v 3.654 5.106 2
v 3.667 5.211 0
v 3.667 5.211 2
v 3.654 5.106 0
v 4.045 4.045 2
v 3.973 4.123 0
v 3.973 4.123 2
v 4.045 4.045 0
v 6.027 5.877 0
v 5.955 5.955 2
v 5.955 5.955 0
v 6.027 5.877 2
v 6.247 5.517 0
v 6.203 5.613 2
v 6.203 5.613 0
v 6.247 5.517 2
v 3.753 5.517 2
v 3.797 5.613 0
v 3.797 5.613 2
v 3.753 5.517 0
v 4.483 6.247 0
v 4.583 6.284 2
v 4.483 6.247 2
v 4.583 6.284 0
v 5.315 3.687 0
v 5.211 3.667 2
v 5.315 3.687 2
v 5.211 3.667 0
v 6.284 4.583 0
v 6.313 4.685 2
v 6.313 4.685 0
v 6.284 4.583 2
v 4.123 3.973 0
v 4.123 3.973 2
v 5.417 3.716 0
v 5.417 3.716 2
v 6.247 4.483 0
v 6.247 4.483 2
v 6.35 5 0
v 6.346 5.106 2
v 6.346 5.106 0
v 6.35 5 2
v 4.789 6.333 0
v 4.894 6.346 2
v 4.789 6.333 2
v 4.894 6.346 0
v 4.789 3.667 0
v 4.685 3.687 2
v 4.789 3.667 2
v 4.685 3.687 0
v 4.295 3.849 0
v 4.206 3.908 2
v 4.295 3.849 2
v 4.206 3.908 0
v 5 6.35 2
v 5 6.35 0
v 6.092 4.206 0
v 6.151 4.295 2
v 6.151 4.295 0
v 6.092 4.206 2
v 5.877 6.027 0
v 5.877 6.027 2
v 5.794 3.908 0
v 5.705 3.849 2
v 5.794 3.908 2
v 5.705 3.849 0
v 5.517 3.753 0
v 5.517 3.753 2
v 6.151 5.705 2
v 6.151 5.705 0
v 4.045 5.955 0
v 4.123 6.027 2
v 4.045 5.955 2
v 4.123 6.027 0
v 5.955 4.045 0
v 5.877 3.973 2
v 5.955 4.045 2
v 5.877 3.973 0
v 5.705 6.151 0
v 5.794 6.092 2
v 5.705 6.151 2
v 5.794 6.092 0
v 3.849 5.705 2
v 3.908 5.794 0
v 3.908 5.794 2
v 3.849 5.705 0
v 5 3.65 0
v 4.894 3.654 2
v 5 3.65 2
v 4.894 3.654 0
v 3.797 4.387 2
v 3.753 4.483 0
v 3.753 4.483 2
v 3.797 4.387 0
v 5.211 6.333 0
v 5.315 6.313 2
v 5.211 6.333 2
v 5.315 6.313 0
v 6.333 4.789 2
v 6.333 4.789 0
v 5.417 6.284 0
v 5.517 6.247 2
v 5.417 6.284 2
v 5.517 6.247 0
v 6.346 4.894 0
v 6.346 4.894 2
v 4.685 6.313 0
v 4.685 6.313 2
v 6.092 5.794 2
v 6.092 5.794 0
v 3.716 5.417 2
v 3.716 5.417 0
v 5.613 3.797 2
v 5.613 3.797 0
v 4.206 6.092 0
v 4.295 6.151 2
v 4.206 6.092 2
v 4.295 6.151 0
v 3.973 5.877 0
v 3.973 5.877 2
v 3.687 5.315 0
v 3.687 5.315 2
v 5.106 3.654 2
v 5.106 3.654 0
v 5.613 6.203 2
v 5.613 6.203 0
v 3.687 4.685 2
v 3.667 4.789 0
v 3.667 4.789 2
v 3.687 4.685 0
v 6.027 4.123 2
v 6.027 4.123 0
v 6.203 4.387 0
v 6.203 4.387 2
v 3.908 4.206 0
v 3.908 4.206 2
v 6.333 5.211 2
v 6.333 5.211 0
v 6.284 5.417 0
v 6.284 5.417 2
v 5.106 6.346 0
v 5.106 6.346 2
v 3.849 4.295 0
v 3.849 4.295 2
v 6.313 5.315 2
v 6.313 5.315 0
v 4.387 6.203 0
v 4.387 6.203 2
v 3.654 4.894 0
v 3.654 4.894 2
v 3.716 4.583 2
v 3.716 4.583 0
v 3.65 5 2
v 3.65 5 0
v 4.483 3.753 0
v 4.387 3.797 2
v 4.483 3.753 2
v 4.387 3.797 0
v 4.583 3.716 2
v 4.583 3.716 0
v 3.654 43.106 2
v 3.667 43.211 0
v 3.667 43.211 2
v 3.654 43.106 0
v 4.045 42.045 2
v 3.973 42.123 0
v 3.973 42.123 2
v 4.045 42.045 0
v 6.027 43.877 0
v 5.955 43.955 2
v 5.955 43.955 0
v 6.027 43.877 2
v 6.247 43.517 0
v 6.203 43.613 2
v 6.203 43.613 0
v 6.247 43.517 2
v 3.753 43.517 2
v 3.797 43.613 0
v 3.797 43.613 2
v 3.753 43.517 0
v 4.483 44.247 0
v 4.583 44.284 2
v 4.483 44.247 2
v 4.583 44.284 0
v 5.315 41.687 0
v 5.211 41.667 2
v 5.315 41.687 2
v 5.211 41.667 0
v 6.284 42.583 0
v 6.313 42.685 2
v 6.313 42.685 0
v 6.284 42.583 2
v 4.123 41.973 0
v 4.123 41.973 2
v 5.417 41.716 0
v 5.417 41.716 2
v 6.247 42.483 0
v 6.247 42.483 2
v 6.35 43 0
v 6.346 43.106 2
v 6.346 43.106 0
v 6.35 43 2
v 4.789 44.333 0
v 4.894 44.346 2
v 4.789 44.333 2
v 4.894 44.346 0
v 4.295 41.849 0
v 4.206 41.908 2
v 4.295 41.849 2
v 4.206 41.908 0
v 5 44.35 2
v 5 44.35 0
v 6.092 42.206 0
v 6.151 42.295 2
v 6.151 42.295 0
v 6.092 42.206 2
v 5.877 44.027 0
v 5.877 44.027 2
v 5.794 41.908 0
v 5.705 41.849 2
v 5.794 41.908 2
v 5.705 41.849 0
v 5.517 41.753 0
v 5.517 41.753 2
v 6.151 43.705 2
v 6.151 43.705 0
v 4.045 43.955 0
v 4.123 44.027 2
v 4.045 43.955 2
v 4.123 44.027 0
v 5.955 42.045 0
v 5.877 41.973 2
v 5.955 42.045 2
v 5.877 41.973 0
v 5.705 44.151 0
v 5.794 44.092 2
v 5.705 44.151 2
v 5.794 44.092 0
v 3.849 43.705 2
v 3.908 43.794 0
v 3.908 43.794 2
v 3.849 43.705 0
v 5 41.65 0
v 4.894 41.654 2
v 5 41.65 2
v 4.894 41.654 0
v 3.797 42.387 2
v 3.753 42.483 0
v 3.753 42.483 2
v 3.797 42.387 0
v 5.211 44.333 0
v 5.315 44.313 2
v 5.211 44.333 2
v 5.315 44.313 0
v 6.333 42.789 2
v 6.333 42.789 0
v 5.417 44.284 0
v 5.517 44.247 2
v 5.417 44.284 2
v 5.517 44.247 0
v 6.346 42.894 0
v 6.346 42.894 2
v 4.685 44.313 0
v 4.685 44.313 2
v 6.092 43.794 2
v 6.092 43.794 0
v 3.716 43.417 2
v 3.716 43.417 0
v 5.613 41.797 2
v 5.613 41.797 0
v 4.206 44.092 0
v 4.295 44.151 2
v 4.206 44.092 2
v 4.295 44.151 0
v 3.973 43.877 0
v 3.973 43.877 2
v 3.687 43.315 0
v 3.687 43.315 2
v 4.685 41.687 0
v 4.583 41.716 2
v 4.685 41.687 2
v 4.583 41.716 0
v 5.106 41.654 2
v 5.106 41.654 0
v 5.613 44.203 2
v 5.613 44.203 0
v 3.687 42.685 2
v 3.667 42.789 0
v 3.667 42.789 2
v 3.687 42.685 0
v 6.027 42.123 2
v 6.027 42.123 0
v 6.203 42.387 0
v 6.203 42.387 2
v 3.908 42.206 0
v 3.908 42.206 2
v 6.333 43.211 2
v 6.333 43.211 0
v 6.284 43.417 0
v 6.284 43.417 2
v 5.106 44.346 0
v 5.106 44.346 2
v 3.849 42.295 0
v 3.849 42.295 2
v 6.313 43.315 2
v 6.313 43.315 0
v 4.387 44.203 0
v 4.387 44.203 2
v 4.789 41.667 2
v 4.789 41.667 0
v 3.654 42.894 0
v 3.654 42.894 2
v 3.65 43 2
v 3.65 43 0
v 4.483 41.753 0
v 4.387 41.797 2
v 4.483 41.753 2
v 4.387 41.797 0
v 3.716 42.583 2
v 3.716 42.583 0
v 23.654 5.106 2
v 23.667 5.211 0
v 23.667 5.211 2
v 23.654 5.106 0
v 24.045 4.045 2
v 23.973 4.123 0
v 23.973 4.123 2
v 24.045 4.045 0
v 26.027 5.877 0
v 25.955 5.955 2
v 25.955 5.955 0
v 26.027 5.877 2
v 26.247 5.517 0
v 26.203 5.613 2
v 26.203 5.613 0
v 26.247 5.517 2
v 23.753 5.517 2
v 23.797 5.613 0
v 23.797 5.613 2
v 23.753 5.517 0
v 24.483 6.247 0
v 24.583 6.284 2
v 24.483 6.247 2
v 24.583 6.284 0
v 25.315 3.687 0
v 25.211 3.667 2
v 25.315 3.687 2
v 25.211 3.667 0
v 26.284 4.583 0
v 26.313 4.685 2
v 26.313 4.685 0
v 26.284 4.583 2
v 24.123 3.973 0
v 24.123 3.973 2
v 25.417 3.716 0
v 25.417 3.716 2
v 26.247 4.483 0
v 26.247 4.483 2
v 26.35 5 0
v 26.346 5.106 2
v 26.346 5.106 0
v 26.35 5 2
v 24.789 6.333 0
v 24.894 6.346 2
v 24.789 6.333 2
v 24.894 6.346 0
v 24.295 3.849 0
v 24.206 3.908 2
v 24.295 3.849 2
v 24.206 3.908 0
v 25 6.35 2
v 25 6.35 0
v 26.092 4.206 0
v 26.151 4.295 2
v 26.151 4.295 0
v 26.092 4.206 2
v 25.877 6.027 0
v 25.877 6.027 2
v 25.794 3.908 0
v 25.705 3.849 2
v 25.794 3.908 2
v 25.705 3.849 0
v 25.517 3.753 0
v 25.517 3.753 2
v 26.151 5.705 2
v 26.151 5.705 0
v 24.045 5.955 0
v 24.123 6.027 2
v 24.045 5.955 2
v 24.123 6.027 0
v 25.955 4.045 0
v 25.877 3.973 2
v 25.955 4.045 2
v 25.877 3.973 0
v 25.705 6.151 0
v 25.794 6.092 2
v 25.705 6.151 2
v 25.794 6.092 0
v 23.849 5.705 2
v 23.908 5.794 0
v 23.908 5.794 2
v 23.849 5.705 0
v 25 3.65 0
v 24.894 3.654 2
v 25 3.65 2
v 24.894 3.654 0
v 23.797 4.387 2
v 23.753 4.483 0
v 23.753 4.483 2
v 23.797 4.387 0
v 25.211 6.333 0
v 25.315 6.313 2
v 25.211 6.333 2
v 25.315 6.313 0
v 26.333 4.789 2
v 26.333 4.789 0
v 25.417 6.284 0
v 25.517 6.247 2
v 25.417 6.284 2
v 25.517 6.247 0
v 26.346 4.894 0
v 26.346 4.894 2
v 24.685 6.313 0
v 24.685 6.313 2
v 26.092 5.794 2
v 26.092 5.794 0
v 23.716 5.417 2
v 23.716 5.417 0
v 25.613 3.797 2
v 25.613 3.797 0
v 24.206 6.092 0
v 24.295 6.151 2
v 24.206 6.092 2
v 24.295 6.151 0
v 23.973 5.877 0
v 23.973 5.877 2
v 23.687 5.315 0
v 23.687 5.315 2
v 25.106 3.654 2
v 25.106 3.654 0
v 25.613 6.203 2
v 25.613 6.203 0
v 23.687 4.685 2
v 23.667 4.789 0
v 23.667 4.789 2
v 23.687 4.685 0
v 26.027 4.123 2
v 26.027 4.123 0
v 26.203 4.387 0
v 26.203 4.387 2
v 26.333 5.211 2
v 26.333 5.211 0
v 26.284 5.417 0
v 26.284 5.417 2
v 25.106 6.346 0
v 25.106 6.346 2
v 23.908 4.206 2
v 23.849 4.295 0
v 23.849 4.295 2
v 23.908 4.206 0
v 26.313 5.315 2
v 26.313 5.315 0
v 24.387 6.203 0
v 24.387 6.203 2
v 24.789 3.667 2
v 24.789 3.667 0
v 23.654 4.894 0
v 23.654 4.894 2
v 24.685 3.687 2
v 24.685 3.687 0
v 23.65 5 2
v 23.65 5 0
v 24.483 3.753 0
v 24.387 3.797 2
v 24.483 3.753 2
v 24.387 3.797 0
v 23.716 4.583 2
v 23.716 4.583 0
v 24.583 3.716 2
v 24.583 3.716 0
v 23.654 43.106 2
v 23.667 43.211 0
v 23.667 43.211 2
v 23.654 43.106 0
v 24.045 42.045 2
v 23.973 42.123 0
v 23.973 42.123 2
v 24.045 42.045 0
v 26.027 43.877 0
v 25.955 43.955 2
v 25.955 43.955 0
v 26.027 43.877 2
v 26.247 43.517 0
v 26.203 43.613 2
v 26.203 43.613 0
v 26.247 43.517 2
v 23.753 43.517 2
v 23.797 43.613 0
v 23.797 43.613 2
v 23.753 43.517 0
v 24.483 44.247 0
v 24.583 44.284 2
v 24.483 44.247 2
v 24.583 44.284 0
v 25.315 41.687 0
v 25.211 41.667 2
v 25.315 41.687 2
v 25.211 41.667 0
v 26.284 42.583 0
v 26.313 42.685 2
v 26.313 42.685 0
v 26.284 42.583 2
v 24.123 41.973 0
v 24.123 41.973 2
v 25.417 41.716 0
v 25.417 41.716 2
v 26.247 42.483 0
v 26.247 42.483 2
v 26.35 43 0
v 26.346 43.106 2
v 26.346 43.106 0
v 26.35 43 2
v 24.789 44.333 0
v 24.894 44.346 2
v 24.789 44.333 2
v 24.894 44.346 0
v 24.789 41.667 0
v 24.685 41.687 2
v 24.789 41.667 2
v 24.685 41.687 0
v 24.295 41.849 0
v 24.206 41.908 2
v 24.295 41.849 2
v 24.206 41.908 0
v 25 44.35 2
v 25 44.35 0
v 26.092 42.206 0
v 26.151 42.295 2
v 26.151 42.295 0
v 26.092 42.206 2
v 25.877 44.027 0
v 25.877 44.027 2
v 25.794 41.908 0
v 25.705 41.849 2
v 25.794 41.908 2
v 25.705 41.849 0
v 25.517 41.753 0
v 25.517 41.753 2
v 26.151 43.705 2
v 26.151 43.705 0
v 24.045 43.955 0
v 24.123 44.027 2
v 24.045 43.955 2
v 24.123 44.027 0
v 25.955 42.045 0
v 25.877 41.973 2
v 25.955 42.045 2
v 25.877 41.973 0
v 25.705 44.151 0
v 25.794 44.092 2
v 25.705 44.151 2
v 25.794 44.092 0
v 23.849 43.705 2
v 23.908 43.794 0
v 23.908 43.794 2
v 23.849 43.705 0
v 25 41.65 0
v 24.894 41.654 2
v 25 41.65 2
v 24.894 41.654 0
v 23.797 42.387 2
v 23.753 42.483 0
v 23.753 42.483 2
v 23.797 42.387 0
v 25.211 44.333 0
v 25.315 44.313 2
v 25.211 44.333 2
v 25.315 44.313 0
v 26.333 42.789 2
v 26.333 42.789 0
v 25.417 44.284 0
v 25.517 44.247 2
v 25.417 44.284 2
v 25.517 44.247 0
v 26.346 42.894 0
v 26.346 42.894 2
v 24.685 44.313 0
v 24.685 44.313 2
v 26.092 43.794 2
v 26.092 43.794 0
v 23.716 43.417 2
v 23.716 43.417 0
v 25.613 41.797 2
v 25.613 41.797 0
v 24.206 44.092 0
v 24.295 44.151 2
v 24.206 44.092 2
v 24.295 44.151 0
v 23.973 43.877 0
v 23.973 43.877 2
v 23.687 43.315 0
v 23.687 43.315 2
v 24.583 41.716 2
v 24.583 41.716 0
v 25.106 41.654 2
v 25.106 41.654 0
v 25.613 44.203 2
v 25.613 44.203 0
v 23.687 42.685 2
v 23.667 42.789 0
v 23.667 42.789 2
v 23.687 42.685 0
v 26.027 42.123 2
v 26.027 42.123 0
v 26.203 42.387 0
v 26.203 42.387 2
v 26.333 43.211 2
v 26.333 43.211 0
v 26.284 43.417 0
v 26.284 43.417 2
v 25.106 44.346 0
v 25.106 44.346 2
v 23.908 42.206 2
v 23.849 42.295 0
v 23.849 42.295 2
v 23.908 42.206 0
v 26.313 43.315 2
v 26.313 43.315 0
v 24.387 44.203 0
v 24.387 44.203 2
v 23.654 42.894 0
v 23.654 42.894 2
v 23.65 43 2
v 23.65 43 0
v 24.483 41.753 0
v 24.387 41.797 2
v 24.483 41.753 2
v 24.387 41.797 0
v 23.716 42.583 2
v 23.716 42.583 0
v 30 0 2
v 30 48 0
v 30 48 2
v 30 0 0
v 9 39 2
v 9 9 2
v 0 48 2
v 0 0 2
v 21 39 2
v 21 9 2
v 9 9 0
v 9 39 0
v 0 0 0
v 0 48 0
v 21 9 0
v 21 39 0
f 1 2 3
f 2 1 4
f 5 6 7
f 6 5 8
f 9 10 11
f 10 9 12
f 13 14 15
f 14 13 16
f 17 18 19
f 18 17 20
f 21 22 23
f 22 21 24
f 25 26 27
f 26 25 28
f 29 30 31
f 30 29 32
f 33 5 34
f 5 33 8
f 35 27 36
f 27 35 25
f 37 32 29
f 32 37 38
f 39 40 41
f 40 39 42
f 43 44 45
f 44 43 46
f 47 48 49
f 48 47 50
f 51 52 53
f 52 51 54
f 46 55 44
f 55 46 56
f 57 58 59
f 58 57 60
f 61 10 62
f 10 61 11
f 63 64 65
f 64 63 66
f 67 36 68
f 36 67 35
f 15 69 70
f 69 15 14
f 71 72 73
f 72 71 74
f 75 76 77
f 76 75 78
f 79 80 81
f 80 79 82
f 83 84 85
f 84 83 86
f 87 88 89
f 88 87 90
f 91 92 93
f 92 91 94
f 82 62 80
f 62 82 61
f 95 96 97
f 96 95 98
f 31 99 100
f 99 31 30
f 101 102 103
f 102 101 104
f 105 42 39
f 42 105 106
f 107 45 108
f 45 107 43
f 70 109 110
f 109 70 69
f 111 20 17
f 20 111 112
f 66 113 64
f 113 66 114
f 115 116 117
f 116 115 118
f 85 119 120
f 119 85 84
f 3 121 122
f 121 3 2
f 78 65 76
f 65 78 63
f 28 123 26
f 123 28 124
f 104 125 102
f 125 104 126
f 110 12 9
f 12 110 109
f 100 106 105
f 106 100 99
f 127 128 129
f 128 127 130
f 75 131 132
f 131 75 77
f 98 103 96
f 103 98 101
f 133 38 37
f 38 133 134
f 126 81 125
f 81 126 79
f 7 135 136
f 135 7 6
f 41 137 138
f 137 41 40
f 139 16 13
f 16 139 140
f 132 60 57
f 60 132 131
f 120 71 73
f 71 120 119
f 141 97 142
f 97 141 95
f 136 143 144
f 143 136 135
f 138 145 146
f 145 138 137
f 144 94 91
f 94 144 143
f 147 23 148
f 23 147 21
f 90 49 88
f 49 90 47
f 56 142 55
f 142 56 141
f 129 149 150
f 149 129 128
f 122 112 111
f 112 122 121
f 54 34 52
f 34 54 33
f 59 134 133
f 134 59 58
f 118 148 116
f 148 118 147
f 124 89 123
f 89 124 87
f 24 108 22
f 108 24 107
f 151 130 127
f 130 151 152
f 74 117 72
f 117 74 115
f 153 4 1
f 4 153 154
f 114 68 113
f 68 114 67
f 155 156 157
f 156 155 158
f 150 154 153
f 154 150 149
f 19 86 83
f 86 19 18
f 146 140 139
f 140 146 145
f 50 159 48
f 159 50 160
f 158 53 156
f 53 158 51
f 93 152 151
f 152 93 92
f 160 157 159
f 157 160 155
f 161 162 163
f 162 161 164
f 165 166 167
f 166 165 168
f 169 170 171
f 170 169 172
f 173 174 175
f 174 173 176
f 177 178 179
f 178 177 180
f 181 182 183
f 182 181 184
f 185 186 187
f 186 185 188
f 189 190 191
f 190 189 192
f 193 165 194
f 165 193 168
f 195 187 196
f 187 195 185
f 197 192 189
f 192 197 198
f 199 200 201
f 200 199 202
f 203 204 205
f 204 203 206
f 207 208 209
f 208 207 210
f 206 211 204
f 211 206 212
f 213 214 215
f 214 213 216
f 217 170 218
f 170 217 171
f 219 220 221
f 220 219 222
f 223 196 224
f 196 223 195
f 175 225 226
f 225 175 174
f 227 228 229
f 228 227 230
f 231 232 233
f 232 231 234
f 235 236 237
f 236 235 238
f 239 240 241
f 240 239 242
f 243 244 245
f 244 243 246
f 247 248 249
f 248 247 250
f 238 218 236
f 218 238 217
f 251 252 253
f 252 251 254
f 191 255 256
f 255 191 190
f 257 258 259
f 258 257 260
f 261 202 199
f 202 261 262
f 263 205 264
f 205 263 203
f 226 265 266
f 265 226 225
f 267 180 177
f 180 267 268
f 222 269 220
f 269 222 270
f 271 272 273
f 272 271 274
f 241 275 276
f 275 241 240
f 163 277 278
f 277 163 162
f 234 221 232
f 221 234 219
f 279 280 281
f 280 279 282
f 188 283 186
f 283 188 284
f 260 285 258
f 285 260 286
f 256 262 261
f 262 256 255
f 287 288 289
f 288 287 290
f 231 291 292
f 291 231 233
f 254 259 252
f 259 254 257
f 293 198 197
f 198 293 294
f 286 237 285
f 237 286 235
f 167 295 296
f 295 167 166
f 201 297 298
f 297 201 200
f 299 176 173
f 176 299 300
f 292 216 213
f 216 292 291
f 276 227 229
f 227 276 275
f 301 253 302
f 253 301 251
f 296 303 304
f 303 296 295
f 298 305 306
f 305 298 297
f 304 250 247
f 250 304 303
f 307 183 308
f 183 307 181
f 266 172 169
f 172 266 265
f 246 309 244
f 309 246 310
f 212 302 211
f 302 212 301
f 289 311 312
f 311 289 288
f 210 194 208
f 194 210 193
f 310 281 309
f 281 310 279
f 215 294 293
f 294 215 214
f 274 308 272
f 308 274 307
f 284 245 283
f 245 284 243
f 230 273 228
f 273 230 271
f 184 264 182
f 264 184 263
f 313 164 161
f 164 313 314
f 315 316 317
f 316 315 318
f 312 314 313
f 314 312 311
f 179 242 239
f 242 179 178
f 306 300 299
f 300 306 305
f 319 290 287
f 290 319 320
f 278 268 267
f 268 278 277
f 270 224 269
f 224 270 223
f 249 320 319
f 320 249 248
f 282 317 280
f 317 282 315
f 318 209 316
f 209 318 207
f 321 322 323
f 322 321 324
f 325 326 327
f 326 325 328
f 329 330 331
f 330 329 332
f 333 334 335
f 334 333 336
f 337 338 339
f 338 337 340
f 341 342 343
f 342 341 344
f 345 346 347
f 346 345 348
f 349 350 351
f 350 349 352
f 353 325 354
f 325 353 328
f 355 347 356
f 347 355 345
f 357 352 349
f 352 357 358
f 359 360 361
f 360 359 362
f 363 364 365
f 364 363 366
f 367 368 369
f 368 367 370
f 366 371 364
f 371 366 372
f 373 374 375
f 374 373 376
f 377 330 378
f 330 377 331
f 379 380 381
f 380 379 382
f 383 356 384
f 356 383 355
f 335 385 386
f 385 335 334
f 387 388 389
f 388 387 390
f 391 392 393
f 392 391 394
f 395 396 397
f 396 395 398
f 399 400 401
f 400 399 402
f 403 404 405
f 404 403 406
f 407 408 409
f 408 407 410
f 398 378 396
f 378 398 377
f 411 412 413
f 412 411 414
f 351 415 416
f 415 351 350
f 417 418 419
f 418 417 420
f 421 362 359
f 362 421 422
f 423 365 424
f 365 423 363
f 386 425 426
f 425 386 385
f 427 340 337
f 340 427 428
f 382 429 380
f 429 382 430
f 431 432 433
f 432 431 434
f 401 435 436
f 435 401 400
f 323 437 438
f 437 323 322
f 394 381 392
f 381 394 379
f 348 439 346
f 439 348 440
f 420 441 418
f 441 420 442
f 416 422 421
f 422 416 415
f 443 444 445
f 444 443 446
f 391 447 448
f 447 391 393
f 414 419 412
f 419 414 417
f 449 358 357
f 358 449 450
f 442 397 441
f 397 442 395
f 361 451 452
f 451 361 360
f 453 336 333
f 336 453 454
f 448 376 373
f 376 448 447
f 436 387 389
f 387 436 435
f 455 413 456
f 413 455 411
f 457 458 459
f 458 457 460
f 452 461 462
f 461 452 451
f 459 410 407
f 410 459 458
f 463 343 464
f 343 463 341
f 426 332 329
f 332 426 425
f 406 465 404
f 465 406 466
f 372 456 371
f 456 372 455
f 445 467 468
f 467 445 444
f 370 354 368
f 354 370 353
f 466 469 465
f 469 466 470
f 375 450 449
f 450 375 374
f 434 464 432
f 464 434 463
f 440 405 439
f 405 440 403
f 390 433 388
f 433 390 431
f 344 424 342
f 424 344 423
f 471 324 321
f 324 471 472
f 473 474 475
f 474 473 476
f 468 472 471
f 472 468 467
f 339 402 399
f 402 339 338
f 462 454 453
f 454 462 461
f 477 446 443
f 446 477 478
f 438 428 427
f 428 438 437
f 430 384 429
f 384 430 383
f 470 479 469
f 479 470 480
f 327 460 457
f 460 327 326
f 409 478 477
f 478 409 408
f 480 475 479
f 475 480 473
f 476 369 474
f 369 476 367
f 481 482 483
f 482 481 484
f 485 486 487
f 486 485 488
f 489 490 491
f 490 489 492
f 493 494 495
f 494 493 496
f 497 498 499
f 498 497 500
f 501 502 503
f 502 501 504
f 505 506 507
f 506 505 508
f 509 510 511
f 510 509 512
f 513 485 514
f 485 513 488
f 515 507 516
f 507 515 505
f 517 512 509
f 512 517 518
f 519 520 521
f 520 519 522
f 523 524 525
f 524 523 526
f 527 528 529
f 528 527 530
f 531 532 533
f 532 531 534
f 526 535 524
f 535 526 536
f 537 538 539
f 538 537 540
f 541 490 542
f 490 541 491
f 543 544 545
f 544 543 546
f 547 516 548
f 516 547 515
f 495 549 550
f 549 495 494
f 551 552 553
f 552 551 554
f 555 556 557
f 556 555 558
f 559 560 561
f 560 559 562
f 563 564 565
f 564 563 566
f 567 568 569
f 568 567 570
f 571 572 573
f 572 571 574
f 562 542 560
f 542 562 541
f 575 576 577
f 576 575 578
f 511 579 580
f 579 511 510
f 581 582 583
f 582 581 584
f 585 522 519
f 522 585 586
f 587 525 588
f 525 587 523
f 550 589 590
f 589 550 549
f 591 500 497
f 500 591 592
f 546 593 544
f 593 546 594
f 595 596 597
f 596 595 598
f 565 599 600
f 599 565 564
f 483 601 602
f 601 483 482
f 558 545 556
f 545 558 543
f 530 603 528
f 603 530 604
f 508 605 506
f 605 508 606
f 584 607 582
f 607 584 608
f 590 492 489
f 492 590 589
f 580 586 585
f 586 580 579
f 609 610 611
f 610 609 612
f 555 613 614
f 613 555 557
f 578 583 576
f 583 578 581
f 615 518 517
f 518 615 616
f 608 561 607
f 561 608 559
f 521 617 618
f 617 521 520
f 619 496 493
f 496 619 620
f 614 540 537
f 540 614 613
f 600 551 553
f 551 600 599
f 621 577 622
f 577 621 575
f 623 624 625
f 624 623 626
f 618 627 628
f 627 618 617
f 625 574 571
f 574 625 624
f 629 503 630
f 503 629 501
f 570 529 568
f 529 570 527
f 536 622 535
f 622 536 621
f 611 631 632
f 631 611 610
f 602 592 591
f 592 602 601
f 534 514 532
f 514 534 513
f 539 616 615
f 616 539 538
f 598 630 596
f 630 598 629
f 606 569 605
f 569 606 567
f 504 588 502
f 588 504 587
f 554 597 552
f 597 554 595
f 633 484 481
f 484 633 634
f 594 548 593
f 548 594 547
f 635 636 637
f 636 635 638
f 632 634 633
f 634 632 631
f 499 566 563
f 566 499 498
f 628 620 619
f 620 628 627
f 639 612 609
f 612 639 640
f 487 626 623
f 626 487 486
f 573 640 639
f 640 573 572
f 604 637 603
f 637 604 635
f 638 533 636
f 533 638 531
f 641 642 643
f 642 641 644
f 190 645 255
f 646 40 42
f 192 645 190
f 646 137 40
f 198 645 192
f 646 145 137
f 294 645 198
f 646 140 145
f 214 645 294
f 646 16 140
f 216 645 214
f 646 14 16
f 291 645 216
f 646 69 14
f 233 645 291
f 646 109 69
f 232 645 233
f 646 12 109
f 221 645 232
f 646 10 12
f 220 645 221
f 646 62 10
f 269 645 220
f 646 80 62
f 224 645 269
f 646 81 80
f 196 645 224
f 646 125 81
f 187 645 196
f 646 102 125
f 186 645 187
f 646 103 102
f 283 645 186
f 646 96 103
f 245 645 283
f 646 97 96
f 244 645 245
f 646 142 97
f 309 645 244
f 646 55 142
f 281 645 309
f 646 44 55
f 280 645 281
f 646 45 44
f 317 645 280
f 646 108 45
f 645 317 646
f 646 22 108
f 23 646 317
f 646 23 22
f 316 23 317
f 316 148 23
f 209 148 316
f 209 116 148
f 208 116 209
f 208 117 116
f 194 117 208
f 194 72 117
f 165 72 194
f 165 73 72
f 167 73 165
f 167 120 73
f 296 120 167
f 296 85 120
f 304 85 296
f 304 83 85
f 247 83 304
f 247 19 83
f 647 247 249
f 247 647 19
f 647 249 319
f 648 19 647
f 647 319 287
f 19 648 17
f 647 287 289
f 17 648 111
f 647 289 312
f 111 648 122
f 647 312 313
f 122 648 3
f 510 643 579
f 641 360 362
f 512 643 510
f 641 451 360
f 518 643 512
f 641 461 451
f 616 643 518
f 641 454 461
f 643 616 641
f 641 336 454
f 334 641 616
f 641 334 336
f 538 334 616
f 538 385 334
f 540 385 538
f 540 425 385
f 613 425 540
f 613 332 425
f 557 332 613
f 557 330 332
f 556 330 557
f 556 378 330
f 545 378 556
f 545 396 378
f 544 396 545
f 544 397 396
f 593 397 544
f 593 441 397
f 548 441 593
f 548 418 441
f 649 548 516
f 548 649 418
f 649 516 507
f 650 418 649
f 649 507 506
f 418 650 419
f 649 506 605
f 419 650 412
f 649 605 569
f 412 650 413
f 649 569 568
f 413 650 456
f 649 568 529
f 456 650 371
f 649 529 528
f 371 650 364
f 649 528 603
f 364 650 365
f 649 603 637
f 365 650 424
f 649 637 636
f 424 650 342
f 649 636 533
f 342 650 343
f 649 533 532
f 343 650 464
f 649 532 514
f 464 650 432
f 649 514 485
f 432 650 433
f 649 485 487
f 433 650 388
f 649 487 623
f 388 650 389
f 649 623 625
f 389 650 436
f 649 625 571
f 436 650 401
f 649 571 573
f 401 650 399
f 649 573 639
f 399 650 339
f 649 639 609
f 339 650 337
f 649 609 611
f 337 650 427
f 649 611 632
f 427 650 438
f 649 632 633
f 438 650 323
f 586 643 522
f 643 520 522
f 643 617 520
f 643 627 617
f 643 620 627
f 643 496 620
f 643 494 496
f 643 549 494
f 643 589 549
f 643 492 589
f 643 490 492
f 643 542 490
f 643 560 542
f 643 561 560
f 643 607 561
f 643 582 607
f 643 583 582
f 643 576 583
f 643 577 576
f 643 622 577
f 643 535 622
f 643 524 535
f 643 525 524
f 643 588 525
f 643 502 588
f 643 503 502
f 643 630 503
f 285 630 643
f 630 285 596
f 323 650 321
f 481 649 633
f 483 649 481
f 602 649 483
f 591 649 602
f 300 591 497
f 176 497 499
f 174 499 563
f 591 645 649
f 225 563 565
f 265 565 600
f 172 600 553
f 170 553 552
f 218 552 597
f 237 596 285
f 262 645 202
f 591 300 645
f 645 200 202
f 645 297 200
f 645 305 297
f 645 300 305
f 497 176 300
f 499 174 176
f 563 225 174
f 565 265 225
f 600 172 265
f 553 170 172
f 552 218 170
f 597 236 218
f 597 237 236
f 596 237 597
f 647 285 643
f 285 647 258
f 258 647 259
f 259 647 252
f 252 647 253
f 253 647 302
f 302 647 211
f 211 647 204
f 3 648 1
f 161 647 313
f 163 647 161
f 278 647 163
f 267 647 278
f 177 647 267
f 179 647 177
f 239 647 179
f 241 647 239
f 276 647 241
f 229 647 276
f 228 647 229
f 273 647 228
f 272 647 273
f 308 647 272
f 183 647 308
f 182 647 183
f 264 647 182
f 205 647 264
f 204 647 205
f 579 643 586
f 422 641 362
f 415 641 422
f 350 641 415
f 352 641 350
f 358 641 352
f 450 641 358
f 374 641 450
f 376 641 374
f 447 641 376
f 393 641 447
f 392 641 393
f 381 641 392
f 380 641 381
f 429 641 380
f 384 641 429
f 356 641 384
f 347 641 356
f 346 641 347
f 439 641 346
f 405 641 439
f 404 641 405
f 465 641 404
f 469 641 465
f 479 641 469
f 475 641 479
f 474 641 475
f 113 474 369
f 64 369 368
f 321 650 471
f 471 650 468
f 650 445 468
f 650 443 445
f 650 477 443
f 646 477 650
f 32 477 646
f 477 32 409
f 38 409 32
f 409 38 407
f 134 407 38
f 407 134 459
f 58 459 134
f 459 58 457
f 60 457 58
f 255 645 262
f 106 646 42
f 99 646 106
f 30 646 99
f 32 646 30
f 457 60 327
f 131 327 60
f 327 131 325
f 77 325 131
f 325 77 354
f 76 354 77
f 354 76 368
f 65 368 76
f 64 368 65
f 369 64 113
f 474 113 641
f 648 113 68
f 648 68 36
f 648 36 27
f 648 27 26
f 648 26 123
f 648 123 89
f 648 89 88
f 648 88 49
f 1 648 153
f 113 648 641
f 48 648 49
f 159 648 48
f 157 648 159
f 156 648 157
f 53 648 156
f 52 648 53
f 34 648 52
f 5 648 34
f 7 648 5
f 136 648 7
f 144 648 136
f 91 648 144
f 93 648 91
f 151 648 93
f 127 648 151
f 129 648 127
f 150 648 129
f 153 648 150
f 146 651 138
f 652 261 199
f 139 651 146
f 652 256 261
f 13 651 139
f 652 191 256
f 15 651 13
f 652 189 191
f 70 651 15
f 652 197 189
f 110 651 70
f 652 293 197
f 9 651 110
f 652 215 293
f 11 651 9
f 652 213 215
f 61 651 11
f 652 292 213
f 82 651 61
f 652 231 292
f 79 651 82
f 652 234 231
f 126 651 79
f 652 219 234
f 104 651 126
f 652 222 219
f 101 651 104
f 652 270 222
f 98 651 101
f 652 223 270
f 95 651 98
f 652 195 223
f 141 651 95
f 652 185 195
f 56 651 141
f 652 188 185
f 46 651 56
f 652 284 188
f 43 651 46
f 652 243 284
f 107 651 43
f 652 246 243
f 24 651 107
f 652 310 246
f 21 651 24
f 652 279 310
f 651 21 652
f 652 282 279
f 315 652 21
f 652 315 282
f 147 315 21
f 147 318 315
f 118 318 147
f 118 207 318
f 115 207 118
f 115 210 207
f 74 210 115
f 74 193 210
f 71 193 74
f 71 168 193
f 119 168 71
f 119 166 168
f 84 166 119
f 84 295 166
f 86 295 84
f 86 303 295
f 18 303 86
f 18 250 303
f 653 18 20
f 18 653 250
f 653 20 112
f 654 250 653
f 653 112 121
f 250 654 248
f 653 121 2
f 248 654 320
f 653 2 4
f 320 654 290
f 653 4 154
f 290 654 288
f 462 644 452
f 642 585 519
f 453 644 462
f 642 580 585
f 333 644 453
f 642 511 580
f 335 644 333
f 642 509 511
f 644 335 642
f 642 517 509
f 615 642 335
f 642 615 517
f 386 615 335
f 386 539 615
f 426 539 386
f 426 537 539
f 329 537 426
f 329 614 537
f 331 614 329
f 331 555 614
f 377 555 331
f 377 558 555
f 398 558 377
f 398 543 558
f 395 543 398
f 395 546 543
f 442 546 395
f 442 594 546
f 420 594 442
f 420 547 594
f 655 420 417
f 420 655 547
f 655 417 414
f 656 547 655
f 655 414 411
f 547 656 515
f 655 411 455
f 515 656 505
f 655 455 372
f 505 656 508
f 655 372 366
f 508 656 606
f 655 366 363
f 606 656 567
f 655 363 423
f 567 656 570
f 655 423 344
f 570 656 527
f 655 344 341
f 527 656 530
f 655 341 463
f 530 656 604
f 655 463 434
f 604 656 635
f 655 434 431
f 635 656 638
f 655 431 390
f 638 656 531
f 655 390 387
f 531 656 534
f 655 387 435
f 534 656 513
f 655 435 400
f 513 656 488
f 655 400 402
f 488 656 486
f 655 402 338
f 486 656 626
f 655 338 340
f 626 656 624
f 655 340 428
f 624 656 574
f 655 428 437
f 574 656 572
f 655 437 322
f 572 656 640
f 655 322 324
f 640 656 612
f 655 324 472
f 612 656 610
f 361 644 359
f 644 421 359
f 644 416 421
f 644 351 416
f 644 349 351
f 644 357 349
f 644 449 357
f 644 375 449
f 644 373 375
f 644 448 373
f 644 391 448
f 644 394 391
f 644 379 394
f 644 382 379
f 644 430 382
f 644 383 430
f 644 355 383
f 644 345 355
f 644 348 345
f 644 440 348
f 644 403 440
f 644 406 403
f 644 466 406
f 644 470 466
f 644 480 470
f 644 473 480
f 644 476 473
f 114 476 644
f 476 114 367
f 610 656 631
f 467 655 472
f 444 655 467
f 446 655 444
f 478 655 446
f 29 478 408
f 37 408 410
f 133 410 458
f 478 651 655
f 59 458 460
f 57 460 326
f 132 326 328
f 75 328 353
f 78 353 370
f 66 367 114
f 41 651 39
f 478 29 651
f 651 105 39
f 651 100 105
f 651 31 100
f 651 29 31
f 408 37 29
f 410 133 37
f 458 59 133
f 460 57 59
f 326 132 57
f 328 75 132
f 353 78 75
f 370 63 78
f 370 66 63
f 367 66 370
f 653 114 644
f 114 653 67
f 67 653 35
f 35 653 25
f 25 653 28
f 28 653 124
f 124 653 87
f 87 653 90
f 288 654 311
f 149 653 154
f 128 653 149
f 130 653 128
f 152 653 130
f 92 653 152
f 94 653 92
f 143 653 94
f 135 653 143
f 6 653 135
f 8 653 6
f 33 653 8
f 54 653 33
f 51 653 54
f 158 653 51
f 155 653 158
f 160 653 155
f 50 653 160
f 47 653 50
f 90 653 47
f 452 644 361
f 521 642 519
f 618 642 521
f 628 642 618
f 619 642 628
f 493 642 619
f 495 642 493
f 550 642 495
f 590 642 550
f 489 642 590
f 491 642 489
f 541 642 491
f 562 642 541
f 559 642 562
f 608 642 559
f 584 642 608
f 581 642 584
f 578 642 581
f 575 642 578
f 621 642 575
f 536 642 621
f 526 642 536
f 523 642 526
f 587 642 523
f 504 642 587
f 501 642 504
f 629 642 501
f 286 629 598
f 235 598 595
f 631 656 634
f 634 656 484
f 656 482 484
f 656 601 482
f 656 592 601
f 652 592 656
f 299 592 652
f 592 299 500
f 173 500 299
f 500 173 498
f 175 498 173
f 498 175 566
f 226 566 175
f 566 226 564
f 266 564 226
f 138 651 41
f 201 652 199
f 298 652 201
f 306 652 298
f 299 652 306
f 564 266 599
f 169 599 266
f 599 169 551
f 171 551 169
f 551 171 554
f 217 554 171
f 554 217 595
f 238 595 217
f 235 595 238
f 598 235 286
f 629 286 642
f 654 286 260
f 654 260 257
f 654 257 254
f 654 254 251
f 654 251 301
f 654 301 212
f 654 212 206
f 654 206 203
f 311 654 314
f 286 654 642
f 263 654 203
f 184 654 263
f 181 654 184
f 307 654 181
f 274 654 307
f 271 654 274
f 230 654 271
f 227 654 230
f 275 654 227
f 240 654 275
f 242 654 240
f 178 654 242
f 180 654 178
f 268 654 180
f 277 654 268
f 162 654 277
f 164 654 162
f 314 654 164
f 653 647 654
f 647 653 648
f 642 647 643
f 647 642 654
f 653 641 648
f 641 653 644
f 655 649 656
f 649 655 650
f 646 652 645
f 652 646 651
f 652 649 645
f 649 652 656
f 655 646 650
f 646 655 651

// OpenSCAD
// Boxbert HW-125: Lochraster-Pruefschablone, 2026-10-09.
// 38 x 20 mm aus Botland, Nutzer akzeptiert als Entwurfsgrundlage.
// KEIN bestaetigtes Lochbild der realen Platine, kein fertiger Mount.
// Platine real laut Nutzer 23.68 x 41.78; M2.5 passt laut Nutzer.
$fn=80;
hole_pitch_x=20;
hole_pitch_y=38;
hole_d=2.7; // Entwurfs-Spiel fuer M2.5, Druckpassung pruefen
thickness=2;
assert(hole_pitch_x==20 && hole_pitch_y==38);
difference() {
    cube([30,48,thickness]);
    translate([9,9,-0.02]) cube([12,30,thickness+0.04]);
    for(x=[5,25], y=[5,43])
        translate([x,y,-0.02]) cylinder(d=hole_d,h=thickness+0.04);
}
echo("Pruefschablone: 30 x 48 x 2 mm, Lochraster 20 x 38, D2.7");
